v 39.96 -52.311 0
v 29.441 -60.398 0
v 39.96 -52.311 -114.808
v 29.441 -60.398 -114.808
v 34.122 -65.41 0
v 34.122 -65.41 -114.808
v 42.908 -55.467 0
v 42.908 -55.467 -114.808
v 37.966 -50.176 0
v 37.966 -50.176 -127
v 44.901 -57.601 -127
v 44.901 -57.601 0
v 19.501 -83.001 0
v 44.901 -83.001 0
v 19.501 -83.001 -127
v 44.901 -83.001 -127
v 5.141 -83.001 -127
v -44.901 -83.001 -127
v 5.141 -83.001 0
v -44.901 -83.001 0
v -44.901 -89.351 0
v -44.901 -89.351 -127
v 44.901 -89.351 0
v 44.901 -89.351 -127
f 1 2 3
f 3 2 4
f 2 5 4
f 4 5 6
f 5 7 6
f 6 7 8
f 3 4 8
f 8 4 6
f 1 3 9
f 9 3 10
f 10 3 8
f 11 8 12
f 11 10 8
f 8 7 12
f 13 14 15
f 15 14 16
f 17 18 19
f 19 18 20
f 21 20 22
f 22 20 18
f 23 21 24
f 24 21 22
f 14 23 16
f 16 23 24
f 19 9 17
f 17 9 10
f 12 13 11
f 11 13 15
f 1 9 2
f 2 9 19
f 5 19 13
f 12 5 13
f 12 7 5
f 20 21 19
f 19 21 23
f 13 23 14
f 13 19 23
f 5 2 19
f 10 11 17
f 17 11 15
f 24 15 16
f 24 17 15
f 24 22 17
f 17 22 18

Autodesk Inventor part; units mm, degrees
ref_plane "YZ Plane" through (0, 0, 0) normal (1, 0, 0) x (0, 1, 0)
ref_plane "XZ Plane" through (0, 0, 0) normal (0, 1, 0) x (-1, 0, 0)
ref_plane "XY Plane" through (0, 0, 0) normal (0, 0, 1) x (1, 0, 0)
sketch "Sketch1" plane through (0, 0, 0) normal (0, 0, 1) x (1, 0, 0)
  line L0 (44.9013, -57.6013) -> (44.9013, -83.0013) construction
  line L1 (-44.9013, -83.0013) -> (44.9013, -83.0013)
  line L2 (-44.9013, -83.0013) -> (-44.9013, -89.3513)
  line L3 (44.9013, -83.0013) -> (44.9013, -89.3513)
  line L4 (44.9013, -83.0013) -> (51.2513, -83.0013) construction
  line L5 (-44.9013, -89.3513) -> (44.9013, -89.3513)
  line L6 (44.9013, -57.6013) -> (19.5013, -83.0013)
  line L7 (44.9013, -57.6013) -> (80.8223, -57.6013) construction
  line L8 (44.9013, -57.6013) -> (37.9664, -50.1761) construction
  line L9 (37.9664, -50.1761) -> (5.1412, -83.0013)
  line L10 (37.9664, -50.1761) -> (84.3883, -50.1761) construction
  line L11 (37.9664, -50.1761) -> (44.9013, -57.6013)
  dimension "d4" = 25.4
  dimension "d7" = 6.35
  dimension "d8" = 90
  dimension "d9" = 135
  dimension "d10" = 10.16
  dimension "d11" = 135
extrude "Extrusion1" add sketch "Sketch1" against normal blind 127
sketch "Sketch5" plane through (0, 0, 0) normal (0, 0, 1) x (1, 0, 0)
  line L0 (39.9602, -52.3108) -> (42.9075, -55.4665)
  line L1 (44.9013, -57.6013) -> (37.9664, -50.1761) projected
  line L2 (29.4406, -60.398) -> (34.1216, -65.41)
  line L3 (41.4339, -53.8887) -> (31.7811, -62.904) construction
  line L4 (29.4406, -60.398) -> (39.9602, -52.3108)
  line L5 (34.1216, -65.41) -> (42.9075, -55.4665)
  point P0 (0, 0)
  dimension "d28" = 4.318
  dimension "d29" = 6.858
  dimension "d30" = 13.208
extrude "Extrusion5" cut sketch "Sketch5" against normal blind 114.808
properties part number "proto_1_base"
